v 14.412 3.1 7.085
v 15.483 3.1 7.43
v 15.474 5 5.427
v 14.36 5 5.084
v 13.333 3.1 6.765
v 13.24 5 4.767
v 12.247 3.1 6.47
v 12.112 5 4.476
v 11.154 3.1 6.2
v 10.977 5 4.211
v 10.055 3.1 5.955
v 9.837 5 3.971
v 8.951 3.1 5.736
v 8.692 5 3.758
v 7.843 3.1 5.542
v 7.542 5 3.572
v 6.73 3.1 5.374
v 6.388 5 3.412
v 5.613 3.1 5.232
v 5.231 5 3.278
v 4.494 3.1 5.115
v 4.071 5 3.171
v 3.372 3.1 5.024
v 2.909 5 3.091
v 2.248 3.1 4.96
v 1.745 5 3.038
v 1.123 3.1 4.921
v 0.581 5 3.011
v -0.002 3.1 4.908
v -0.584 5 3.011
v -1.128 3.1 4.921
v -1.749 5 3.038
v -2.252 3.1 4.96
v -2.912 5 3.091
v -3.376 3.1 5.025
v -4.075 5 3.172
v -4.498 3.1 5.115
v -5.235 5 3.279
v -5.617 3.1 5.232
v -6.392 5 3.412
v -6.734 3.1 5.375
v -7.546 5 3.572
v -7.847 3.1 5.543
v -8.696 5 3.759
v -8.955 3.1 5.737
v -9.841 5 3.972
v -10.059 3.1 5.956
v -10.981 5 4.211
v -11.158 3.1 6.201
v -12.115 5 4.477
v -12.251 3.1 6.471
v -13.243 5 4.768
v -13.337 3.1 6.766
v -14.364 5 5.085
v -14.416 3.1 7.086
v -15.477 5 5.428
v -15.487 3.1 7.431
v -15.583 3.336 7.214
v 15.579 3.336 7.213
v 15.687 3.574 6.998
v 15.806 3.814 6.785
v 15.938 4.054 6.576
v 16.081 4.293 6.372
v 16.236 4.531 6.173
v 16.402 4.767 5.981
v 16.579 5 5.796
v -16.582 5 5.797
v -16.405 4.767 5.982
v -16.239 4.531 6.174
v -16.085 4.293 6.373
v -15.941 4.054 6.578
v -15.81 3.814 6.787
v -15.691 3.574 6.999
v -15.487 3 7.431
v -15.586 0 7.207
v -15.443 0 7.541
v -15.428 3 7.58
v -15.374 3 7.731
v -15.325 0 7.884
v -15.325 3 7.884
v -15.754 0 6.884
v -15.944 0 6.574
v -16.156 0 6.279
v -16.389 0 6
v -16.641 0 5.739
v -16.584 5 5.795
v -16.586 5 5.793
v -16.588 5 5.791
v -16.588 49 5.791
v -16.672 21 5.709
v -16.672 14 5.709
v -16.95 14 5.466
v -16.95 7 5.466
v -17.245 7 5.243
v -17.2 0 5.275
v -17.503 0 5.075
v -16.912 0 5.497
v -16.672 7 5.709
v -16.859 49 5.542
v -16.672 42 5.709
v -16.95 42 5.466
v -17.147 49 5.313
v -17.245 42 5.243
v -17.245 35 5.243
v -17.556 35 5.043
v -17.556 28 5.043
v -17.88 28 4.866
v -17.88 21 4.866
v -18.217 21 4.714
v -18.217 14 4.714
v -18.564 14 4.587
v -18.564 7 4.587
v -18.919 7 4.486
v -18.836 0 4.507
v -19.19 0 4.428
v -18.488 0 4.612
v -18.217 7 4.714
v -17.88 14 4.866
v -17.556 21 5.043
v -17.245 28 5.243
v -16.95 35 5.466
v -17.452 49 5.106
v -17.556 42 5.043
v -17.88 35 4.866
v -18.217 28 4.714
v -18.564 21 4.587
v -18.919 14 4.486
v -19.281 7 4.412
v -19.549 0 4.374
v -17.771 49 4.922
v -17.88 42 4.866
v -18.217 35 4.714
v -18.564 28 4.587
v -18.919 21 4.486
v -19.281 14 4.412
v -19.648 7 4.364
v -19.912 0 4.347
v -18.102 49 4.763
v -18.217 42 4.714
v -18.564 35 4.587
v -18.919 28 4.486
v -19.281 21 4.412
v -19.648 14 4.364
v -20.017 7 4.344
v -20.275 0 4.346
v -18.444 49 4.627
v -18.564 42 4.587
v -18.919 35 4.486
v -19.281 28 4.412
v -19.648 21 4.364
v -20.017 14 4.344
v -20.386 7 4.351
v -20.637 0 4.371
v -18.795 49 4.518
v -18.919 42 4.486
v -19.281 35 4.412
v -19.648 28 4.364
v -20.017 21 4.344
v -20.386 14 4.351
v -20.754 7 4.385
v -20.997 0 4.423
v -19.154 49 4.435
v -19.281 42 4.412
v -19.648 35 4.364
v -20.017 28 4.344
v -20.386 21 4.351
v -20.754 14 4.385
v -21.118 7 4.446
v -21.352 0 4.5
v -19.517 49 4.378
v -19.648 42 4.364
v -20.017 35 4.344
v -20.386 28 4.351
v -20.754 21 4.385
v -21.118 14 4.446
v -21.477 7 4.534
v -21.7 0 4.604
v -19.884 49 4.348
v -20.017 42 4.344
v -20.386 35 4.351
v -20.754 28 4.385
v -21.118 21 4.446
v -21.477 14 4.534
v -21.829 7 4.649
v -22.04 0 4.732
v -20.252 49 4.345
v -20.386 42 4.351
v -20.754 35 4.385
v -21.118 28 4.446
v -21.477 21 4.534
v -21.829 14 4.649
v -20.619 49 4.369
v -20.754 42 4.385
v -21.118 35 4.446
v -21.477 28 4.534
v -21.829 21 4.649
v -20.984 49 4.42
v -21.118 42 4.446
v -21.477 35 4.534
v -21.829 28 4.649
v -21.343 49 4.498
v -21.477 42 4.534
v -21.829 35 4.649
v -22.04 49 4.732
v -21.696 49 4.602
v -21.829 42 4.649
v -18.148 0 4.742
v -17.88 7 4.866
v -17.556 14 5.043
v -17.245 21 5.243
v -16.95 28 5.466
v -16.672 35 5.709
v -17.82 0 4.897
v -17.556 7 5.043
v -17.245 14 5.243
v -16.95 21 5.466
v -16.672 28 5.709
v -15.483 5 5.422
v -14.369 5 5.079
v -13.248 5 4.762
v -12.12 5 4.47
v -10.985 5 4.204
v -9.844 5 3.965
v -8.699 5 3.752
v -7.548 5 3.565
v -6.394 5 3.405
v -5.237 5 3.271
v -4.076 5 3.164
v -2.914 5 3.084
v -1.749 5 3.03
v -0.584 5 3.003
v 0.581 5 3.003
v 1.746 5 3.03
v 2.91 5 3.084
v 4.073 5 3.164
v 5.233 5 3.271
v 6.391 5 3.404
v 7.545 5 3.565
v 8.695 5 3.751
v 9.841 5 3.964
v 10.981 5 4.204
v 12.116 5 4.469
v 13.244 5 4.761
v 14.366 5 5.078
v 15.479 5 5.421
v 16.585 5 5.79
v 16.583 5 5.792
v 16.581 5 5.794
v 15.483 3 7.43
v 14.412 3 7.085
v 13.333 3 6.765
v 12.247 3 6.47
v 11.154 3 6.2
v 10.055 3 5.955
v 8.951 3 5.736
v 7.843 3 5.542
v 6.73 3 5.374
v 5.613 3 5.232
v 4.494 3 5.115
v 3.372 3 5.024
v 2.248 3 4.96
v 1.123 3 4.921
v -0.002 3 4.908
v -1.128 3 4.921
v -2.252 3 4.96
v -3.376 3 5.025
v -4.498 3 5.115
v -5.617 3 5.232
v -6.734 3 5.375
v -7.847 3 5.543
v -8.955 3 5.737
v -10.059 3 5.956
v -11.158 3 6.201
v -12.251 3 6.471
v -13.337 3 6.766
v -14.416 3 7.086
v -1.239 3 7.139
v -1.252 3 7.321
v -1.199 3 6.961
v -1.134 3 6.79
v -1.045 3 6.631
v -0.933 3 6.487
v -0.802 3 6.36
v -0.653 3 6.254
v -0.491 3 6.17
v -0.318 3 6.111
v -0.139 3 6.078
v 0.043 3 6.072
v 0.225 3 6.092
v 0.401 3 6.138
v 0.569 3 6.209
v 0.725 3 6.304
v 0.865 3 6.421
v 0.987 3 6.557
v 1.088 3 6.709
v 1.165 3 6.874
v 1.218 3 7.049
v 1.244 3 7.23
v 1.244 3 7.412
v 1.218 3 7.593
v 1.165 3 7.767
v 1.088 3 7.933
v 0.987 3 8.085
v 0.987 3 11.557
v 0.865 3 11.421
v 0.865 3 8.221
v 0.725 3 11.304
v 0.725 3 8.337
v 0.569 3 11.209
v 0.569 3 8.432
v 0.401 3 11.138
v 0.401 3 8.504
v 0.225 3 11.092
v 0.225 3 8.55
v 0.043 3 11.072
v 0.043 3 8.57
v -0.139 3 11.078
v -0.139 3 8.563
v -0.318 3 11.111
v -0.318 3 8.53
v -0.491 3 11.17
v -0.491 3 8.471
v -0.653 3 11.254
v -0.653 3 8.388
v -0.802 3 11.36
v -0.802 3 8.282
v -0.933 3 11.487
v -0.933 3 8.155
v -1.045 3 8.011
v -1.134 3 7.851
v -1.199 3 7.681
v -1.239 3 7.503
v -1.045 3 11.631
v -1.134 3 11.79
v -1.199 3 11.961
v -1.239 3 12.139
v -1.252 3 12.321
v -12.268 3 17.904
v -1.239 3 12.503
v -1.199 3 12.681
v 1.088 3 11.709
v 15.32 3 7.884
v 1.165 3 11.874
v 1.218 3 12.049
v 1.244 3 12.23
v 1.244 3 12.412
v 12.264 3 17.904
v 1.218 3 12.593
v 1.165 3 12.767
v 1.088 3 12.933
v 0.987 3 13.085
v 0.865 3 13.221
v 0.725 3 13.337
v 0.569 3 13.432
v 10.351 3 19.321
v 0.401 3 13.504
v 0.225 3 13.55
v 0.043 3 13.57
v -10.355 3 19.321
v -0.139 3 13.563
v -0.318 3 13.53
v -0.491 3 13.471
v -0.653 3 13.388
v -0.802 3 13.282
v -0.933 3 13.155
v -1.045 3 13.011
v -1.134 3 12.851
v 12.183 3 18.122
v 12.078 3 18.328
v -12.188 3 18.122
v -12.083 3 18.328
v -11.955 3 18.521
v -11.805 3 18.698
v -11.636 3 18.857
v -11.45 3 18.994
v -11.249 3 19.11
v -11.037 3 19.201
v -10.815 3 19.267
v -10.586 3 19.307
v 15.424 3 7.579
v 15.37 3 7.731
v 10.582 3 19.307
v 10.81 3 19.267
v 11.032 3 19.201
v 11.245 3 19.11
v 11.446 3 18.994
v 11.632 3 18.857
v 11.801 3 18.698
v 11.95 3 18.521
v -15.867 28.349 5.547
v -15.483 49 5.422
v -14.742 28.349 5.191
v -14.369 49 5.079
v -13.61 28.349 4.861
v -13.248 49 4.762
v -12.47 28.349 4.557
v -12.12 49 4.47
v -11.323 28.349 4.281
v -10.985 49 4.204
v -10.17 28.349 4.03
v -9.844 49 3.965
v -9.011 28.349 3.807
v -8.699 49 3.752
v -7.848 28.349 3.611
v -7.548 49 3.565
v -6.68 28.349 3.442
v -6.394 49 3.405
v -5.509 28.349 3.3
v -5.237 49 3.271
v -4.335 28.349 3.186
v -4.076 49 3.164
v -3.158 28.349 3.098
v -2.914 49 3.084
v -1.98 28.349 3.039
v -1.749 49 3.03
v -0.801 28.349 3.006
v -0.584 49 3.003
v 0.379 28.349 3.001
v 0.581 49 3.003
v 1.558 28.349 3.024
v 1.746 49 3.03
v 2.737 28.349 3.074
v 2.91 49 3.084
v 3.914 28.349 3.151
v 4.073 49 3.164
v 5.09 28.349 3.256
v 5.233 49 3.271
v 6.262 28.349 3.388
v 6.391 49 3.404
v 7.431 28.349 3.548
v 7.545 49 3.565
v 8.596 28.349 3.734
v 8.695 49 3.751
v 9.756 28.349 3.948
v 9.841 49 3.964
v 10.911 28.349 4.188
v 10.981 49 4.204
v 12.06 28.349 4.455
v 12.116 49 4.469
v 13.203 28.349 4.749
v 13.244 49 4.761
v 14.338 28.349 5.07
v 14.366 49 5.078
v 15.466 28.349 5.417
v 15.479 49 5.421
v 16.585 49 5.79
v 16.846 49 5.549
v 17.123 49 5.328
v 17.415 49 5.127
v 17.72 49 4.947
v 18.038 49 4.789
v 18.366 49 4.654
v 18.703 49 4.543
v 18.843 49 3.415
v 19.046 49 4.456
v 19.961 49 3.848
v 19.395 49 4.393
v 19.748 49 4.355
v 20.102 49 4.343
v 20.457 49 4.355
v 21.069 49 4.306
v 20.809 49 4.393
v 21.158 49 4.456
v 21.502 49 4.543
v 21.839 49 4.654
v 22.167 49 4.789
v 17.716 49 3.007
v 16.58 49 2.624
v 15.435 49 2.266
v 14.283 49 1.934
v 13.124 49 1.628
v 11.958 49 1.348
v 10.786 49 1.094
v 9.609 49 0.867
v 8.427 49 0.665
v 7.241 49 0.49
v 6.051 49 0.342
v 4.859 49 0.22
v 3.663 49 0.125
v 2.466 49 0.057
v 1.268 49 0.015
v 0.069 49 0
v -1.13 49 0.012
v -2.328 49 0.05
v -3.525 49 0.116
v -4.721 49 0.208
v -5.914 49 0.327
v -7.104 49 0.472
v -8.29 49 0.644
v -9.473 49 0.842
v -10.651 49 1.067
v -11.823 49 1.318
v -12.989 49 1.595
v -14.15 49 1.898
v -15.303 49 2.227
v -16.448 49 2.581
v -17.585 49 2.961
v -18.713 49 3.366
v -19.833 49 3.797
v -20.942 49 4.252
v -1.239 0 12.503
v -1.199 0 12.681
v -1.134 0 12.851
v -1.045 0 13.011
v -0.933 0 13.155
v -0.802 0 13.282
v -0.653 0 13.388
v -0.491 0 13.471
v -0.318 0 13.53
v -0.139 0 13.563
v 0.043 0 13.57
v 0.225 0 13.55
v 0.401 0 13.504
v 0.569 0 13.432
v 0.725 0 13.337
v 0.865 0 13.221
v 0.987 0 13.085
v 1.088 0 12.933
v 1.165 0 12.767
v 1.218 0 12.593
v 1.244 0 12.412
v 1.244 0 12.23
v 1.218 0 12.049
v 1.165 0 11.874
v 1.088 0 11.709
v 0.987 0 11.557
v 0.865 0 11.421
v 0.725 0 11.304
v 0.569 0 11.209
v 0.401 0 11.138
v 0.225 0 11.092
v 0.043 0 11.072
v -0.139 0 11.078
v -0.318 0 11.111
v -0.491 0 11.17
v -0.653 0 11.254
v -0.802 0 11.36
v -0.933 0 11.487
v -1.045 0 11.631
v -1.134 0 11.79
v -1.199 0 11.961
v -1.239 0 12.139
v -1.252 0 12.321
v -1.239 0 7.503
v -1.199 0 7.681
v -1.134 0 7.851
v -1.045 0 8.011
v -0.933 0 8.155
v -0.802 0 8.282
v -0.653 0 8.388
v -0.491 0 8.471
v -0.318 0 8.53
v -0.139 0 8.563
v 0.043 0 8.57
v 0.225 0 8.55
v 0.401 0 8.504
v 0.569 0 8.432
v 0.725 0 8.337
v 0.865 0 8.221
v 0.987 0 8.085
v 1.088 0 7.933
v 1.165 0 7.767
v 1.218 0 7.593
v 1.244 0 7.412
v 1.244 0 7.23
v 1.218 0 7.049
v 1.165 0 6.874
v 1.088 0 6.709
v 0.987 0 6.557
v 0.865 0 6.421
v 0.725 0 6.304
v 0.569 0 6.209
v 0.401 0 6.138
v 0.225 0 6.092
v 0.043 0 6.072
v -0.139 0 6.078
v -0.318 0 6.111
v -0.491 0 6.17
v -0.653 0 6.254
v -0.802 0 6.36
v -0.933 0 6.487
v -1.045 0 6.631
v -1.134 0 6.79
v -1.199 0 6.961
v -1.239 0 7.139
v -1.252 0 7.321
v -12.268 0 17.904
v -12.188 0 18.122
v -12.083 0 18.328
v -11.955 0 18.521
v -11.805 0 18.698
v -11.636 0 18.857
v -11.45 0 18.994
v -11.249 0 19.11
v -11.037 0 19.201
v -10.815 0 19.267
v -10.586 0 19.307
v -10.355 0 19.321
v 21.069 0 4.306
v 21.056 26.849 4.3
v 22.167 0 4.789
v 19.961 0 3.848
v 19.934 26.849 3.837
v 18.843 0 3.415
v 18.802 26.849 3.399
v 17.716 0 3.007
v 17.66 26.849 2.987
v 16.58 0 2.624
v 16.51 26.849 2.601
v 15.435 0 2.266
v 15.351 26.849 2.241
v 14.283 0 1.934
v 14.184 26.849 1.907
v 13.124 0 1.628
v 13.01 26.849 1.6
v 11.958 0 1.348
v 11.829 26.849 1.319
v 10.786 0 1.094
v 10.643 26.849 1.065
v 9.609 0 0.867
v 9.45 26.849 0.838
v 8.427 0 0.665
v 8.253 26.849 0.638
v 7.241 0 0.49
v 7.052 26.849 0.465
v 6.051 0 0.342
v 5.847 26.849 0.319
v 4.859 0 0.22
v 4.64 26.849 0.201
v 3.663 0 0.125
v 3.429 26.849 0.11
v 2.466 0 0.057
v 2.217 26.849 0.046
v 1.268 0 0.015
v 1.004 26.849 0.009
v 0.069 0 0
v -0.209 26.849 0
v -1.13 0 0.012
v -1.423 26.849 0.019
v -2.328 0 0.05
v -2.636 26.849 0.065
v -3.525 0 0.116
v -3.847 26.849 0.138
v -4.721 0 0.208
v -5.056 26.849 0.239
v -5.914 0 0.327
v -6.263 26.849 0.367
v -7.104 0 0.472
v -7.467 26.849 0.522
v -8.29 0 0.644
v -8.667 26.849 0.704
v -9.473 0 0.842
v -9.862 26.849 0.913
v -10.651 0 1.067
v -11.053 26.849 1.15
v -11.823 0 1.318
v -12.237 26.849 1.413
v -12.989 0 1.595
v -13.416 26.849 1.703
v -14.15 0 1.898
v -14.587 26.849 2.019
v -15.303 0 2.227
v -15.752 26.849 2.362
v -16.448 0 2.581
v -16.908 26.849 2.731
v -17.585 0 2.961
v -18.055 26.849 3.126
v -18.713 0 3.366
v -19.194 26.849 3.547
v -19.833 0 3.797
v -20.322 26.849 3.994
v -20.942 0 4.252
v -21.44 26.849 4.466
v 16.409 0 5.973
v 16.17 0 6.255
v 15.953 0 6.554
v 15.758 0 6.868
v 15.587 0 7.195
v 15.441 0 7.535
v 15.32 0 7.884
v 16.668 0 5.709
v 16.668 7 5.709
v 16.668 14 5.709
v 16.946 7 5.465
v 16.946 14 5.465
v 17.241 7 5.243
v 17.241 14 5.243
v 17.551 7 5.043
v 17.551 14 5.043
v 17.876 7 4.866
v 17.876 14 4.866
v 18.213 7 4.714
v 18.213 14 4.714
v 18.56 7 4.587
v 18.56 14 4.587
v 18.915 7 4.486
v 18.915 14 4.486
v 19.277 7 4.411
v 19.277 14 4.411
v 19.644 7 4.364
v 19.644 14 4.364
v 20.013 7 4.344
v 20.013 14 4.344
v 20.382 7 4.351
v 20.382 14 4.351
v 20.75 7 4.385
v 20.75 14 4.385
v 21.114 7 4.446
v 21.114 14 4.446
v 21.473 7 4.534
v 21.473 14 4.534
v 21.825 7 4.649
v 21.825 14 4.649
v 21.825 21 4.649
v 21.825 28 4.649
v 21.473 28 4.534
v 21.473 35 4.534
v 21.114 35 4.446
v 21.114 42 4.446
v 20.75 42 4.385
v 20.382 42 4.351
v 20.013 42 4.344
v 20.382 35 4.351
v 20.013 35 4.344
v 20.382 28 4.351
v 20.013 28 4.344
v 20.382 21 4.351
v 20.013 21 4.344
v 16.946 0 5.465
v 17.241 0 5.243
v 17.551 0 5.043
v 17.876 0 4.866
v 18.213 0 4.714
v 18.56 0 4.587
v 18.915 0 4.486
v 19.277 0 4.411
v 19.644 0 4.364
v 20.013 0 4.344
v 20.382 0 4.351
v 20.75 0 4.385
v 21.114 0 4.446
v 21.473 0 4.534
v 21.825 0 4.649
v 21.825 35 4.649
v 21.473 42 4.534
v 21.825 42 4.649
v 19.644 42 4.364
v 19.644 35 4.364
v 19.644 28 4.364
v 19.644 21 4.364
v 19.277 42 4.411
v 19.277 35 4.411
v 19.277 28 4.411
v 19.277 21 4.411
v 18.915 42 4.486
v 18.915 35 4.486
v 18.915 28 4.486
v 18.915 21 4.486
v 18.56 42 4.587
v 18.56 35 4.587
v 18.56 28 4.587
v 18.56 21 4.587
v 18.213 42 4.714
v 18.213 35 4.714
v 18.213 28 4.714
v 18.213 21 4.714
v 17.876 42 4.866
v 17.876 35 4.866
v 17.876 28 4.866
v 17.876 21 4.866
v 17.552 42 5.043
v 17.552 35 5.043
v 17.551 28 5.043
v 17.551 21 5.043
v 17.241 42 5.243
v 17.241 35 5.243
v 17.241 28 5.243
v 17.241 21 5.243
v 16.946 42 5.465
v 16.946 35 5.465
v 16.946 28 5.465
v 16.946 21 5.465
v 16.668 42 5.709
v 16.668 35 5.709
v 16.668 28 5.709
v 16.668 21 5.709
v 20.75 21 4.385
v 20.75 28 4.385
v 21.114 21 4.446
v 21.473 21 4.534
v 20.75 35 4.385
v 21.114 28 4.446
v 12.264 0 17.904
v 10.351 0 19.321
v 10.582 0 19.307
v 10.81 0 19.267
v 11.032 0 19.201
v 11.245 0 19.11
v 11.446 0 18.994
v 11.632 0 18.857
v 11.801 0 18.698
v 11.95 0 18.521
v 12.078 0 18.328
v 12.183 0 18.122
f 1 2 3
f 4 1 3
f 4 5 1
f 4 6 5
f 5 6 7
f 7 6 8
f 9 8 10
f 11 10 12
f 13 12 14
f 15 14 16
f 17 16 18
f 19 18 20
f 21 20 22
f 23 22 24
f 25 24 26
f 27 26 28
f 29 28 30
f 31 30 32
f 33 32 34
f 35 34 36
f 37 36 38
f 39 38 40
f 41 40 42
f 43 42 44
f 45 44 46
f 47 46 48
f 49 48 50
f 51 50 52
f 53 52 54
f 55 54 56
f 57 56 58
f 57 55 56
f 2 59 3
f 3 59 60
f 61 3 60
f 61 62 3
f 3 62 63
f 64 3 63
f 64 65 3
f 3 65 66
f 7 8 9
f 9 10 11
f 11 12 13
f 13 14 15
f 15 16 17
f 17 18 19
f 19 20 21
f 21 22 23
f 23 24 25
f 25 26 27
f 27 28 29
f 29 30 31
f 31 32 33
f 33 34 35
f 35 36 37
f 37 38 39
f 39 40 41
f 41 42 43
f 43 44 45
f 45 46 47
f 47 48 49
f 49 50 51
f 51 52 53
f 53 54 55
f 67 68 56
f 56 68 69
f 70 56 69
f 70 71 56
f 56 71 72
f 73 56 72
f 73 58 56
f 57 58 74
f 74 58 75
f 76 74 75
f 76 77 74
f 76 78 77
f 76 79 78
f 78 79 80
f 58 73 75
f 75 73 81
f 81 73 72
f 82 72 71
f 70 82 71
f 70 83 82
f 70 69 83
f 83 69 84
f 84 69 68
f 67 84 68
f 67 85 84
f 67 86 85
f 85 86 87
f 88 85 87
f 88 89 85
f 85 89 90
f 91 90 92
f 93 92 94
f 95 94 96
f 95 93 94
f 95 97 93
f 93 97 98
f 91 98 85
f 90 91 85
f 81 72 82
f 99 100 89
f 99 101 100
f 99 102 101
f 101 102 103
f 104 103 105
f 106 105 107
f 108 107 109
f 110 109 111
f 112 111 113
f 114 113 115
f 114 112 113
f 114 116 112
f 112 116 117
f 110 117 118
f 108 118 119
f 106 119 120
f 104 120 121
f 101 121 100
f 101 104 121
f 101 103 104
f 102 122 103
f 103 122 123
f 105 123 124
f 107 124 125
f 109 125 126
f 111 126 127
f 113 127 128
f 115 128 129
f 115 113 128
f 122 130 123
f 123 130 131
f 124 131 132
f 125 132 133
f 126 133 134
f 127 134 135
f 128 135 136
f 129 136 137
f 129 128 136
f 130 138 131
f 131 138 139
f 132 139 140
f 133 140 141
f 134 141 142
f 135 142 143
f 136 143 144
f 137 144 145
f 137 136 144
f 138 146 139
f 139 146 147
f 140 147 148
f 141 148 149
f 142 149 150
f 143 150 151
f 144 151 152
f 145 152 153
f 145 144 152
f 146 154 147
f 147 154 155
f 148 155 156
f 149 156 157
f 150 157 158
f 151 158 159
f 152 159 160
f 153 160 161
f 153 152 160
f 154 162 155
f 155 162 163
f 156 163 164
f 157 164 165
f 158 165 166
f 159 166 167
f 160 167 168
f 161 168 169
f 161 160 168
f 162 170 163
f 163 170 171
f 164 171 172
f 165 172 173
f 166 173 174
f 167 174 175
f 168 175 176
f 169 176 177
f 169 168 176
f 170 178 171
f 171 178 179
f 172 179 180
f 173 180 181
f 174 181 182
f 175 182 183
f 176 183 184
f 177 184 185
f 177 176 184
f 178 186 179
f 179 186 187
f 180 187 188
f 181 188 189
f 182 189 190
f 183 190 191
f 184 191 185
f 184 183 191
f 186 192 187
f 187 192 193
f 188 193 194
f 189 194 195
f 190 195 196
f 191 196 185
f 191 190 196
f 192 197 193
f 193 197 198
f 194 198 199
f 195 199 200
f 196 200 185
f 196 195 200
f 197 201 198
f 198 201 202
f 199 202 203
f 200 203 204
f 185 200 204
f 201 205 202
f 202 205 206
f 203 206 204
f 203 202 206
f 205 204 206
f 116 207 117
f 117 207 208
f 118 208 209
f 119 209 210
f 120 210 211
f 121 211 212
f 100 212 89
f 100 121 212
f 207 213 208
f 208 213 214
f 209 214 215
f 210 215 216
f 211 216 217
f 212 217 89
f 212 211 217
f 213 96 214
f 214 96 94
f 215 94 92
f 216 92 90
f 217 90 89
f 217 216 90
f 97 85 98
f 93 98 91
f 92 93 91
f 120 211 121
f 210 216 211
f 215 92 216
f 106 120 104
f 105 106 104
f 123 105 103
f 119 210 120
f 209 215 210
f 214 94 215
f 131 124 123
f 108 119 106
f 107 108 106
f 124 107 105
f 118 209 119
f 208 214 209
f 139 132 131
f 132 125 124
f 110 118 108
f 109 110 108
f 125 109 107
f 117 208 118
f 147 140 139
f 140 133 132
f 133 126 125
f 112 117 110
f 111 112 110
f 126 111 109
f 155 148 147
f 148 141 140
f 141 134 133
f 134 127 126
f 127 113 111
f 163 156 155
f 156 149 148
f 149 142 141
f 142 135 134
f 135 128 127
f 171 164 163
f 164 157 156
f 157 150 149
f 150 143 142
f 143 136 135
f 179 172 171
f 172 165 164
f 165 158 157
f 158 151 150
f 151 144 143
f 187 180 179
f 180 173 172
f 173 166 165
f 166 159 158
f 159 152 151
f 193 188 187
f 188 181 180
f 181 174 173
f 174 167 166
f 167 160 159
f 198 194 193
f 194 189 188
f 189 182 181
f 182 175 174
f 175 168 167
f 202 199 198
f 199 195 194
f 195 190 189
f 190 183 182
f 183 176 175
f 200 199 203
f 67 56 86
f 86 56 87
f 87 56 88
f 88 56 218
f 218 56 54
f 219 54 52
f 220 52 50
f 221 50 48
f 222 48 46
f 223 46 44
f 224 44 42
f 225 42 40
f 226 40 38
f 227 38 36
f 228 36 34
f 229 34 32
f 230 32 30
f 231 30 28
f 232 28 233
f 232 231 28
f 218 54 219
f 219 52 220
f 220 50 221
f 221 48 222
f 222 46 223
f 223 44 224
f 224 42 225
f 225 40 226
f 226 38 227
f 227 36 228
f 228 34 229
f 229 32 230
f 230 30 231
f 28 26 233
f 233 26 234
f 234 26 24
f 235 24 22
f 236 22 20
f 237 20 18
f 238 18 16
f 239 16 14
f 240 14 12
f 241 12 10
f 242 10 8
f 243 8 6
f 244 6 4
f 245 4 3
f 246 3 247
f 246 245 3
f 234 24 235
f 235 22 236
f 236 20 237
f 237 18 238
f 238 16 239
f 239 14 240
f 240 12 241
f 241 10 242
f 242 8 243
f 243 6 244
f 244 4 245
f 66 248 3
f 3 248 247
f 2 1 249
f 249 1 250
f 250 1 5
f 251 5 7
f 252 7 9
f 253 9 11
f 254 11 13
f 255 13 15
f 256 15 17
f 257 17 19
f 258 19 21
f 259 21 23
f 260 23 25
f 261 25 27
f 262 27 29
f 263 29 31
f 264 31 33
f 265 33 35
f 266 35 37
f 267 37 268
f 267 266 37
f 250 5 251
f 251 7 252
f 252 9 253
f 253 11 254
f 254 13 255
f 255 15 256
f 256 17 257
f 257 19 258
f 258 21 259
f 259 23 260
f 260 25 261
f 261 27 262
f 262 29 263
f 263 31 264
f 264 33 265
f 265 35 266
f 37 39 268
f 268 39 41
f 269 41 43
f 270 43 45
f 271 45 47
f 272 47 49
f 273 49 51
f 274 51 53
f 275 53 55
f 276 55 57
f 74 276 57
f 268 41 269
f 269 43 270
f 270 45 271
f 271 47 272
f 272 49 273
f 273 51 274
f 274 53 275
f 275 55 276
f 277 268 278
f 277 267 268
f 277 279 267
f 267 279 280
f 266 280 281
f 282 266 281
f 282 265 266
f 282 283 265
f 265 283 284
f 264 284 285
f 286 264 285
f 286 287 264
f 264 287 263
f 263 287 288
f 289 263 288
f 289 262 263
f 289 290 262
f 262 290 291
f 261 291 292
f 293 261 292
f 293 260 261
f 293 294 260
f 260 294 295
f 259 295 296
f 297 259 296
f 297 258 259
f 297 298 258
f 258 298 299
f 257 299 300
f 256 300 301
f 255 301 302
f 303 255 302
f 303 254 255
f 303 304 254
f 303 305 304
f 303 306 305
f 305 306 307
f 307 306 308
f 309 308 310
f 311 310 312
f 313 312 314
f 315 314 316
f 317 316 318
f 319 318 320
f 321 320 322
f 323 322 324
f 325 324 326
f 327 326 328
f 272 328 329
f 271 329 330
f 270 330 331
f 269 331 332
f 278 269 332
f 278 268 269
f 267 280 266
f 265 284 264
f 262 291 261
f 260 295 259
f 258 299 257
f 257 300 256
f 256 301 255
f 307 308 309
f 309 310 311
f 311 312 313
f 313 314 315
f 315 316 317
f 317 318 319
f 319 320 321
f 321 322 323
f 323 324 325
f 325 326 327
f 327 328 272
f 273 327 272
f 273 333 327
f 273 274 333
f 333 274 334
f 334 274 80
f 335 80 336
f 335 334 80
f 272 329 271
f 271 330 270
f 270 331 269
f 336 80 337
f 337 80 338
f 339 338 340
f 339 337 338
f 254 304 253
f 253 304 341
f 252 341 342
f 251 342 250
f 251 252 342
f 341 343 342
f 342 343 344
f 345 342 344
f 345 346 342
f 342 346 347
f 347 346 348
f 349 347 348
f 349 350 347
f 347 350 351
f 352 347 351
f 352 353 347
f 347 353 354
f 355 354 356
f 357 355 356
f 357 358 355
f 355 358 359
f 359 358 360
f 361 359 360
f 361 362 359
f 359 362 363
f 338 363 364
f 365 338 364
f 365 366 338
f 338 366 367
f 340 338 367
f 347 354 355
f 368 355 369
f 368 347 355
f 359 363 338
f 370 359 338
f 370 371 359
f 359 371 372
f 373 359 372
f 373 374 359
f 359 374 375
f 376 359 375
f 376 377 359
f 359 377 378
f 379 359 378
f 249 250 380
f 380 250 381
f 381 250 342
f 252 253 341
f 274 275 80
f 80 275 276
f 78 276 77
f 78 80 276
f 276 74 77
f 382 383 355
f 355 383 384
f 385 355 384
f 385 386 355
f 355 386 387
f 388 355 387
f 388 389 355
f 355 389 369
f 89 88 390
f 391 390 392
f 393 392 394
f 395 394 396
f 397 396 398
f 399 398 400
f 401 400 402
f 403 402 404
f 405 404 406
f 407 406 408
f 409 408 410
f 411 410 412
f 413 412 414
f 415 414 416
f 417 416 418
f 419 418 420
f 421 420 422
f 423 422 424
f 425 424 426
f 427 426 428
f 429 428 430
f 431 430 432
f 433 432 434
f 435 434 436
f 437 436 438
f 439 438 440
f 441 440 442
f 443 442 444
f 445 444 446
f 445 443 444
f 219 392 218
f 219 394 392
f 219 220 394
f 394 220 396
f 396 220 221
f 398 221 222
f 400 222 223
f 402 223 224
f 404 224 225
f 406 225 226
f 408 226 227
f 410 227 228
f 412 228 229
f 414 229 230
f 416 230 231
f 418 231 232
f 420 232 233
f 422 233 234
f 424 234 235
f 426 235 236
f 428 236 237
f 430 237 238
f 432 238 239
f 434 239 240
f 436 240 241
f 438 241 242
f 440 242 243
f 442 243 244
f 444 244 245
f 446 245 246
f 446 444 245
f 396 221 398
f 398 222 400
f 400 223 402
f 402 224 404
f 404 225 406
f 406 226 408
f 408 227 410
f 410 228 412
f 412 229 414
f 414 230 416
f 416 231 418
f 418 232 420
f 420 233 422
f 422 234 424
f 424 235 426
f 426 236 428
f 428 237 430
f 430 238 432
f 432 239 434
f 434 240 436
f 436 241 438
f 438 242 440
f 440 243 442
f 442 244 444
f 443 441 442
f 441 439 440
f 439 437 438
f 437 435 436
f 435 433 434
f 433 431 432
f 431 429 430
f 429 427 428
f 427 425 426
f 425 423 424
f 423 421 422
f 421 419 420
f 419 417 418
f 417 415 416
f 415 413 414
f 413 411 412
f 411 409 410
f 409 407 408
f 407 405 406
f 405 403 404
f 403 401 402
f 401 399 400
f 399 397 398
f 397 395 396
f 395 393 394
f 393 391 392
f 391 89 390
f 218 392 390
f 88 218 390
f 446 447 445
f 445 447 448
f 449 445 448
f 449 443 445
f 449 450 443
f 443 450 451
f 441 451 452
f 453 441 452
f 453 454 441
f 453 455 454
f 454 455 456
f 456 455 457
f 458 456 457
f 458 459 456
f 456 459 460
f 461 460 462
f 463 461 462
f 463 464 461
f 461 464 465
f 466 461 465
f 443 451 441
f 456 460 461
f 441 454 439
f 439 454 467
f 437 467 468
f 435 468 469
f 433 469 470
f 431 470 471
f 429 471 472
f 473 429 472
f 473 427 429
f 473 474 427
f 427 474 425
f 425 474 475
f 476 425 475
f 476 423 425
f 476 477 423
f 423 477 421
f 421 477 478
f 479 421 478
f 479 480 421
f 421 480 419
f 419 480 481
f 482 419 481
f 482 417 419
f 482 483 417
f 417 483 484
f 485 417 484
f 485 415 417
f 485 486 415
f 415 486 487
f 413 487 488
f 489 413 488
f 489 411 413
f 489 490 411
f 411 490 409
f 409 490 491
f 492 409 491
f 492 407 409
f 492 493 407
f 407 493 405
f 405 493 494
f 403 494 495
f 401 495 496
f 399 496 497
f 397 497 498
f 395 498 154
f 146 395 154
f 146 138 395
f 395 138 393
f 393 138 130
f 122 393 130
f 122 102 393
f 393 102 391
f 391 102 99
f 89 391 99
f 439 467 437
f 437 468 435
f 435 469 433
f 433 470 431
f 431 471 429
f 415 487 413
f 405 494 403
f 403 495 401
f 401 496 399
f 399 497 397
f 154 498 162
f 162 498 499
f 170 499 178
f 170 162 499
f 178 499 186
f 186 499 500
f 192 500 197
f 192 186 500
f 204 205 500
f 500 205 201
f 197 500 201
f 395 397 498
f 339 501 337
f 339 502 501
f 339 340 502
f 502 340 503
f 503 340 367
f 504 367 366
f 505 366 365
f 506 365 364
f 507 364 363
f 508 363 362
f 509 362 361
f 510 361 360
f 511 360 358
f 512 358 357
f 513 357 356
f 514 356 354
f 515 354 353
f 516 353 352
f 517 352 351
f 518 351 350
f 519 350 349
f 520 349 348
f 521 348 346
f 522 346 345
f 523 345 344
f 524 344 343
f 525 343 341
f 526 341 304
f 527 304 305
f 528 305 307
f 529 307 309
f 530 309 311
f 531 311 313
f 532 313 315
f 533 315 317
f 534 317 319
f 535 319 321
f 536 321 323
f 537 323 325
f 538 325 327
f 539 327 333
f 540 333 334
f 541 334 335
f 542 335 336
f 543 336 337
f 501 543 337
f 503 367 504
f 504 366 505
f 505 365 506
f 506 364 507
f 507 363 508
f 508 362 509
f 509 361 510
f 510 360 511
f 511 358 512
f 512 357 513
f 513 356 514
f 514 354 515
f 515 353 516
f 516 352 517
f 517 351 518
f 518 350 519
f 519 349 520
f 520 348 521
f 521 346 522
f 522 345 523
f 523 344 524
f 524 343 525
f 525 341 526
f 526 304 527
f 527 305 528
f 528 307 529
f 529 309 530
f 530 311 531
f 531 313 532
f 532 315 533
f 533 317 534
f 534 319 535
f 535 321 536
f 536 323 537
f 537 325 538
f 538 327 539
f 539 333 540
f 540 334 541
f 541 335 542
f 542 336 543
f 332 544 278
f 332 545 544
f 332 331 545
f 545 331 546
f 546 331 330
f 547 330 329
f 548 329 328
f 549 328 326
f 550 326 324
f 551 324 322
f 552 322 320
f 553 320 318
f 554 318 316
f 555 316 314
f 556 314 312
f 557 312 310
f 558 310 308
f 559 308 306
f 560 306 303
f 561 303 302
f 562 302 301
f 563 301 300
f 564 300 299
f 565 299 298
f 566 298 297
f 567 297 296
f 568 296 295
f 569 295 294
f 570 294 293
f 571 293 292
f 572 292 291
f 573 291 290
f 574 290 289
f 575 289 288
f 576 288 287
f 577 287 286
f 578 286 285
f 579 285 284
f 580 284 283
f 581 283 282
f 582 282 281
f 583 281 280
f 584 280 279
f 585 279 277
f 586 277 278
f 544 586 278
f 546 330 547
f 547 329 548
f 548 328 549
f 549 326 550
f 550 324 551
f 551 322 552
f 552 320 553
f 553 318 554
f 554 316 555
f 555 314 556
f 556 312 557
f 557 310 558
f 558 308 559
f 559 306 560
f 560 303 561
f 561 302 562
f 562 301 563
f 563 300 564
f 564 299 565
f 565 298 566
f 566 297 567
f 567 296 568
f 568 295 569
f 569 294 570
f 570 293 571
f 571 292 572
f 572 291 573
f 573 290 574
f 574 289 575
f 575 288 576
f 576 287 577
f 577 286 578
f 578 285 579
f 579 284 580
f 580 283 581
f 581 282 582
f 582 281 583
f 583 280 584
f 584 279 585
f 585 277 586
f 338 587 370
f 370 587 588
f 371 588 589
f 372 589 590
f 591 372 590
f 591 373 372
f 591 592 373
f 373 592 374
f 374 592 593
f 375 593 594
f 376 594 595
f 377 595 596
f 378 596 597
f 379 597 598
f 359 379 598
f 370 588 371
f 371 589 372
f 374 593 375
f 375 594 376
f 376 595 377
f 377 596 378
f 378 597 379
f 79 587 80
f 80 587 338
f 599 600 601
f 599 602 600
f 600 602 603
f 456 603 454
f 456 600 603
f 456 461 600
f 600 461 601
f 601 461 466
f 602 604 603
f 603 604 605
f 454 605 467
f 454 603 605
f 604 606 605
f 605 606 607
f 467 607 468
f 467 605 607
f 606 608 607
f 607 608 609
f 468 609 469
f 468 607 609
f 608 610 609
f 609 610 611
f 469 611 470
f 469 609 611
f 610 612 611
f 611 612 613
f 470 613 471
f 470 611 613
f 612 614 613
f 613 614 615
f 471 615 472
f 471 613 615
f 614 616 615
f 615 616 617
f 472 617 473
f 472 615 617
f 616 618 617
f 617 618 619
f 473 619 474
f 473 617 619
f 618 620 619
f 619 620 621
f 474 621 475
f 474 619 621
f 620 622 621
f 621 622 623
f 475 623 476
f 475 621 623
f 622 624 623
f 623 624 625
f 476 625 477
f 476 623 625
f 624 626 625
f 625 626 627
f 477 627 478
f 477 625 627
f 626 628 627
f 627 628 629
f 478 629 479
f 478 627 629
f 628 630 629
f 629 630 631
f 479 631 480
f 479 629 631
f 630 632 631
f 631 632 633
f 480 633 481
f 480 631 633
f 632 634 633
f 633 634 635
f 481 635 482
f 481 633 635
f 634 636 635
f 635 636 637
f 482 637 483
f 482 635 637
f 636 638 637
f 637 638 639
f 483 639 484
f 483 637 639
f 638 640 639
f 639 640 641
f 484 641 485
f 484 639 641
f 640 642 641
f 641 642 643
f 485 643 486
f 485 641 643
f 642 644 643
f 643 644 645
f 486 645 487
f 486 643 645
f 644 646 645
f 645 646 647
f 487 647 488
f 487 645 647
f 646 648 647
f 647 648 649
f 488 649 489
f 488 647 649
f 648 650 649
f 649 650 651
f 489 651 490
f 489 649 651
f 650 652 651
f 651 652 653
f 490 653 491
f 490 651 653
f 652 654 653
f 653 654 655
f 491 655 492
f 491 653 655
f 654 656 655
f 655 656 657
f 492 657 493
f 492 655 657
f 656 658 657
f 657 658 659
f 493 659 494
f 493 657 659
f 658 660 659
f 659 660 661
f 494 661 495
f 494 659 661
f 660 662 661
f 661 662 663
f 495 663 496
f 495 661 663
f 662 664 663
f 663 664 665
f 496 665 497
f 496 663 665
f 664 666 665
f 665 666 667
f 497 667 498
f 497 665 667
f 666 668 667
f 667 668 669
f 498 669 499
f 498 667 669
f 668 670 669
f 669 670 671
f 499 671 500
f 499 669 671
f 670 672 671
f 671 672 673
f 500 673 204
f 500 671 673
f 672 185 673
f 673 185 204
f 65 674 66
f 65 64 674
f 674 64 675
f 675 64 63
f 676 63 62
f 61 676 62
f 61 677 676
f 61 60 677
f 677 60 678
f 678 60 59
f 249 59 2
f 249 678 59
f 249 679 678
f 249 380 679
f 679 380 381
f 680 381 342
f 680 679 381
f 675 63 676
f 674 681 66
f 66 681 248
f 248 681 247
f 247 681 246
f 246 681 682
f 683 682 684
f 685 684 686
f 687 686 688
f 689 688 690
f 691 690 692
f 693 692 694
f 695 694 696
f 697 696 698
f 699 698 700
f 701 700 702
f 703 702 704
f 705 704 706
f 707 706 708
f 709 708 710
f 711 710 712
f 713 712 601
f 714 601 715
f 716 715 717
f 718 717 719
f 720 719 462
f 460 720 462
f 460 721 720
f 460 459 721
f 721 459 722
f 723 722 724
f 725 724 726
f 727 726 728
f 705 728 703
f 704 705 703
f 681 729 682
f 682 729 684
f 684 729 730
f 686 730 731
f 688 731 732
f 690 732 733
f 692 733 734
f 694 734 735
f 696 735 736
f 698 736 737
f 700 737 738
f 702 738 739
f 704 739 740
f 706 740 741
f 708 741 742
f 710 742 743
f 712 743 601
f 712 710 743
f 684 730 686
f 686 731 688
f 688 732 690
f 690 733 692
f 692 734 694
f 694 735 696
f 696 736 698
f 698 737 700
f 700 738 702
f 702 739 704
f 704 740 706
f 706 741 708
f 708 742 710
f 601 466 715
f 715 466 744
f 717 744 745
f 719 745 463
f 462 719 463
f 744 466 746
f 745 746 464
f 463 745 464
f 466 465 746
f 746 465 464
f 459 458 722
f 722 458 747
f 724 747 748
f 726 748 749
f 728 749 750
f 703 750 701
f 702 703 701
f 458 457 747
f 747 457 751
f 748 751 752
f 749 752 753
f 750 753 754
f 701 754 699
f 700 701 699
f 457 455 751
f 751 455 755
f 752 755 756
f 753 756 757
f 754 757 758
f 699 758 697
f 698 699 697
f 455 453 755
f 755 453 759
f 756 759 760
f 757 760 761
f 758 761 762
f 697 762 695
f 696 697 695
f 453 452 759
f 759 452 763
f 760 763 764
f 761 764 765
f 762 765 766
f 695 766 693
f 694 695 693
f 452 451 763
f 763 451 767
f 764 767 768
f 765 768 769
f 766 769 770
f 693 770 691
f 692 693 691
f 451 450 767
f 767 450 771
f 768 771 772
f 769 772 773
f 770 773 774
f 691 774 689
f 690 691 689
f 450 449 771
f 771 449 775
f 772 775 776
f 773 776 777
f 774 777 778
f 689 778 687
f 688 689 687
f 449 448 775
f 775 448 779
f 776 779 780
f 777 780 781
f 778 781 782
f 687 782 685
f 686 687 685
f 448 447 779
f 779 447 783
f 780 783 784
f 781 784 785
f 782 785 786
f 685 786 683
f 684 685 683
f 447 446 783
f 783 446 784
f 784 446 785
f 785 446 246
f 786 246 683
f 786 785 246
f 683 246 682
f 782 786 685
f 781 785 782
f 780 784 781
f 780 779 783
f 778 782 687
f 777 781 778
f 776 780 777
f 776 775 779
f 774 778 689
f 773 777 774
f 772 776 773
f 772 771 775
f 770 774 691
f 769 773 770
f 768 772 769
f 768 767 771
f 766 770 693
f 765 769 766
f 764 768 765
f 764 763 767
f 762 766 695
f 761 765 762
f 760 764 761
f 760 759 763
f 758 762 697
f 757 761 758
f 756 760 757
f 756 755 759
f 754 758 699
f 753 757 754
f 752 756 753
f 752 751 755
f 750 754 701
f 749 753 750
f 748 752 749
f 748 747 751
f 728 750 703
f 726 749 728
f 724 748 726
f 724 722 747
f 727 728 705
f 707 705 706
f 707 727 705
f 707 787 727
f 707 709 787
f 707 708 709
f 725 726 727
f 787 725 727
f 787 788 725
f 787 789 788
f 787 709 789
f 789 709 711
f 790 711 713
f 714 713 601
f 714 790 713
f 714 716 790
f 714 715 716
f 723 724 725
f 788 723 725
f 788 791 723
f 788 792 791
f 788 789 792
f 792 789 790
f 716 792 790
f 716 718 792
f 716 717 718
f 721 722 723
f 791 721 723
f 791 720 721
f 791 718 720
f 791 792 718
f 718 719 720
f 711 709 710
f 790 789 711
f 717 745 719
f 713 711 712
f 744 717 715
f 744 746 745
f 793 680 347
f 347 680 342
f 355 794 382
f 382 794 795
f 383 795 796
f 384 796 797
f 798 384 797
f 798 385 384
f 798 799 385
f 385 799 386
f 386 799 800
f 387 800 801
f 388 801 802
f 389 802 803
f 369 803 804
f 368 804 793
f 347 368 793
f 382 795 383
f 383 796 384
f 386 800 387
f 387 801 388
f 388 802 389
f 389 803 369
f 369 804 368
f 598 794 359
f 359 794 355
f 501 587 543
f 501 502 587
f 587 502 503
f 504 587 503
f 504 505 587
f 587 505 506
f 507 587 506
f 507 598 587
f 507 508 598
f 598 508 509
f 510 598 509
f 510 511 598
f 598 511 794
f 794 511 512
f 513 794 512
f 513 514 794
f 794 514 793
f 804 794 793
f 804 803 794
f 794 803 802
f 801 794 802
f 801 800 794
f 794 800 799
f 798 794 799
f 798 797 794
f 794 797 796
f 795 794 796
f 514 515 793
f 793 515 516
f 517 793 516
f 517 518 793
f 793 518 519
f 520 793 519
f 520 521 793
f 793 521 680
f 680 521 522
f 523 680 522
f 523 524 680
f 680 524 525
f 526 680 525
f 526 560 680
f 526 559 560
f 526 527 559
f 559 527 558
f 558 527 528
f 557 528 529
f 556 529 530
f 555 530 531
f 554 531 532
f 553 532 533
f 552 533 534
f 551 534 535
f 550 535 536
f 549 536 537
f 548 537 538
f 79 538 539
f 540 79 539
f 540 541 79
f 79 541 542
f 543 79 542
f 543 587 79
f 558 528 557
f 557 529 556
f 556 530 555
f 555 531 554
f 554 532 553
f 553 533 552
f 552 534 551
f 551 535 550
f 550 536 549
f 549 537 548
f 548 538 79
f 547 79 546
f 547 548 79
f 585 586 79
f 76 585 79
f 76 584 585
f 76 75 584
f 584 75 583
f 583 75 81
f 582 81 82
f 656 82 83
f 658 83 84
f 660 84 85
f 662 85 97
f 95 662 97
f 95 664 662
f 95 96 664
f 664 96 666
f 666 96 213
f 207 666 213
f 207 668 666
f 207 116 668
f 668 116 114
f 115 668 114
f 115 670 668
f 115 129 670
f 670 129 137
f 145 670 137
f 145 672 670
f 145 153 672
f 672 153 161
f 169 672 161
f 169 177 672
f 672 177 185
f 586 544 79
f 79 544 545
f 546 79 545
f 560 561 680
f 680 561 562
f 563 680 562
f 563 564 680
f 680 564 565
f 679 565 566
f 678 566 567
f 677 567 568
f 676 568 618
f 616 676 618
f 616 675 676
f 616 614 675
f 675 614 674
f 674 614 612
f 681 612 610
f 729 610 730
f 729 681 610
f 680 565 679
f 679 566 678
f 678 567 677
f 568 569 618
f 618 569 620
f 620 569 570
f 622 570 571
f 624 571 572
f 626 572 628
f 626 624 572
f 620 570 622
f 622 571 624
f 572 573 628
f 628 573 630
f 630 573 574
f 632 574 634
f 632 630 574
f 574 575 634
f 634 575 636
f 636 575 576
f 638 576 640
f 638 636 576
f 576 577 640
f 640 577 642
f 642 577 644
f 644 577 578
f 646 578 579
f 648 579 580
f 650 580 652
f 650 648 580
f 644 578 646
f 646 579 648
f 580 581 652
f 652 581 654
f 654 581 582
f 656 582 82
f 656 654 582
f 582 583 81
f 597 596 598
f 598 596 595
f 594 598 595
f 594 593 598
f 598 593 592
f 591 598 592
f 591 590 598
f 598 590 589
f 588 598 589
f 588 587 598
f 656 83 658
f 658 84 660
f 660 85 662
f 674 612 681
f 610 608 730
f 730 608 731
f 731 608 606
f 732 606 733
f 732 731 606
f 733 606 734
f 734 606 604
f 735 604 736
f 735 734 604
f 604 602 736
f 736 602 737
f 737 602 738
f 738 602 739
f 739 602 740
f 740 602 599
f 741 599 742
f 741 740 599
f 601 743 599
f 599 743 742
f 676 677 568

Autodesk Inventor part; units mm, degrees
ref_plane "YZ Plane" through (0, 0, 0) normal (1, 0, 0) x (0, 1, 0)
ref_plane "XZ Plane" through (0, 0, 0) normal (0, 1, 0) x (-1, 0, 0)
ref_plane "XY Plane" through (0, 0, 0) normal (0, 0, 1) x (1, 0, 0)
sketch "Sketch1" plane through (0, 0, 0) normal (0, 1, 0) x (-1, 0, 0)
  line L0 (12.2682, 17.9043) -> (15.3247, 7.884)
  arc A0 (15.3247, 7.884) -> (22.1712, 4.7888) centre (20.1071, 9.3429) ccw
  arc A1 (-22.1667, 4.7888) -> (-15.3202, 7.884) centre (-20.1027, 9.3429) ccw
  line L1 (-12.2637, 17.9043) -> (-15.3202, 7.884)
  line L2 (10.3552, 19.3208) -> (-10.3507, 19.3208)
  arc A2 (12.2682, 17.9043) -> (10.3552, 19.3208) centre (10.3552, 17.3208) ccw
  arc A3 (-10.3507, 19.3208) -> (-12.2637, 17.9043) centre (-10.3507, 17.3208) ccw
  circle A4 centre (0.0022, 7.3208) radius 1.25
  circle A5 centre (0.0022, 12.3208) radius 1.25
  arc A6 (-22.1667, 4.7888) -> (22.0404, 4.7317) centre (0, 53.698) ccw
  point P0 (0, 0)
  point P1 (28.8757, 53.55)
  point P2 (16.8979, 2.7266)
  point P3 (-28.8757, 53.55)
  point P4 (-16.8934, 2.7266)
  point P5 (-37.9702, 69.5664)
  point P6 (0, 0)
  dimension "d0" = 5
  dimension "d1" = 2
  dimension "d2" = 2.5
  dimension "d3" = 2.5
  dimension "d4" = 34.3772
  dimension "d5" = 1.2868
  dimension "d6" = 1.2911
  dimension "d7" = 5
  dimension "d8" = 7
  dimension "d9" = 20.7059
  dimension "d10" = 10.0203
  dimension "d11" = 10.0203
  dimension "d12" = 13.3613
  dimension "d13" = 14.8201
  dimension "d14" = 53.698
  dimension "d15" = 7.3208
extrude "Extrusion1" add sketch "Sketch1" along normal blind 3
sketch "Sketch2" plane through (0, 3, 0) normal (0, 1, 0) x (1, 0, 0)
  arc A0 (22.1667, -4.7888) -> (16.585, -5.7895) centre (20.1027, -9.3429) ccw
  arc A1 (22.1667, -4.7888) -> (-22.0404, -4.7317) centre (0, -53.698) ccw
  arc A2 (-16.5884, -5.7907) -> (-22.0404, -4.7317) centre (-20.1071, -9.3429) ccw
  line L0 (9.3019, -15.6178) -> (9.24, -15.8208)
  line L1 (-9.2445, -15.8208) -> (-9.3064, -15.6178)
  line L2 (9.24, -15.8208) -> (9.0278, -15.8208)
  line L3 (-9.0323, -15.8208) -> (-9.2445, -15.8208)
  arc A3 (16.585, -5.7895) -> (-16.5884, -5.7907) centre (0, -53.698) ccw
  point P0 (0, 0)
  dimension "d21" = 3
extrude "Extrusion2" add sketch "Sketch2" along normal blind 46
sketch "Sketch3" plane through (0, 3, 0) normal (0, 1, 0) x (1, 0, 0)
  arc A0 (16.585, -5.7895) -> (-16.5884, -5.7907) centre (0, -53.698) ccw projected
  arc A1 (15.4832, -7.4296) -> (-15.4871, -7.4309) centre (0, -53.698) ccw
  arc A2 (16.585, -5.7895) -> (15.3202, -7.884) centre (20.1027, -9.3429) ccw projected
  arc A3 (-15.3247, -7.884) -> (-16.5884, -5.7907) centre (-20.1071, -9.3429) ccw projected
  point P0 (0, 0)
  dimension "d22" = 1.9077
extrude "Extrusion3" add sketch "Sketch3" along normal blind 2
chamfer "Chamfer1" distance 1.9 angle 45 1 edges at (-0.0021, 5, 4.9077)
properties part number "UVTRONwall"
